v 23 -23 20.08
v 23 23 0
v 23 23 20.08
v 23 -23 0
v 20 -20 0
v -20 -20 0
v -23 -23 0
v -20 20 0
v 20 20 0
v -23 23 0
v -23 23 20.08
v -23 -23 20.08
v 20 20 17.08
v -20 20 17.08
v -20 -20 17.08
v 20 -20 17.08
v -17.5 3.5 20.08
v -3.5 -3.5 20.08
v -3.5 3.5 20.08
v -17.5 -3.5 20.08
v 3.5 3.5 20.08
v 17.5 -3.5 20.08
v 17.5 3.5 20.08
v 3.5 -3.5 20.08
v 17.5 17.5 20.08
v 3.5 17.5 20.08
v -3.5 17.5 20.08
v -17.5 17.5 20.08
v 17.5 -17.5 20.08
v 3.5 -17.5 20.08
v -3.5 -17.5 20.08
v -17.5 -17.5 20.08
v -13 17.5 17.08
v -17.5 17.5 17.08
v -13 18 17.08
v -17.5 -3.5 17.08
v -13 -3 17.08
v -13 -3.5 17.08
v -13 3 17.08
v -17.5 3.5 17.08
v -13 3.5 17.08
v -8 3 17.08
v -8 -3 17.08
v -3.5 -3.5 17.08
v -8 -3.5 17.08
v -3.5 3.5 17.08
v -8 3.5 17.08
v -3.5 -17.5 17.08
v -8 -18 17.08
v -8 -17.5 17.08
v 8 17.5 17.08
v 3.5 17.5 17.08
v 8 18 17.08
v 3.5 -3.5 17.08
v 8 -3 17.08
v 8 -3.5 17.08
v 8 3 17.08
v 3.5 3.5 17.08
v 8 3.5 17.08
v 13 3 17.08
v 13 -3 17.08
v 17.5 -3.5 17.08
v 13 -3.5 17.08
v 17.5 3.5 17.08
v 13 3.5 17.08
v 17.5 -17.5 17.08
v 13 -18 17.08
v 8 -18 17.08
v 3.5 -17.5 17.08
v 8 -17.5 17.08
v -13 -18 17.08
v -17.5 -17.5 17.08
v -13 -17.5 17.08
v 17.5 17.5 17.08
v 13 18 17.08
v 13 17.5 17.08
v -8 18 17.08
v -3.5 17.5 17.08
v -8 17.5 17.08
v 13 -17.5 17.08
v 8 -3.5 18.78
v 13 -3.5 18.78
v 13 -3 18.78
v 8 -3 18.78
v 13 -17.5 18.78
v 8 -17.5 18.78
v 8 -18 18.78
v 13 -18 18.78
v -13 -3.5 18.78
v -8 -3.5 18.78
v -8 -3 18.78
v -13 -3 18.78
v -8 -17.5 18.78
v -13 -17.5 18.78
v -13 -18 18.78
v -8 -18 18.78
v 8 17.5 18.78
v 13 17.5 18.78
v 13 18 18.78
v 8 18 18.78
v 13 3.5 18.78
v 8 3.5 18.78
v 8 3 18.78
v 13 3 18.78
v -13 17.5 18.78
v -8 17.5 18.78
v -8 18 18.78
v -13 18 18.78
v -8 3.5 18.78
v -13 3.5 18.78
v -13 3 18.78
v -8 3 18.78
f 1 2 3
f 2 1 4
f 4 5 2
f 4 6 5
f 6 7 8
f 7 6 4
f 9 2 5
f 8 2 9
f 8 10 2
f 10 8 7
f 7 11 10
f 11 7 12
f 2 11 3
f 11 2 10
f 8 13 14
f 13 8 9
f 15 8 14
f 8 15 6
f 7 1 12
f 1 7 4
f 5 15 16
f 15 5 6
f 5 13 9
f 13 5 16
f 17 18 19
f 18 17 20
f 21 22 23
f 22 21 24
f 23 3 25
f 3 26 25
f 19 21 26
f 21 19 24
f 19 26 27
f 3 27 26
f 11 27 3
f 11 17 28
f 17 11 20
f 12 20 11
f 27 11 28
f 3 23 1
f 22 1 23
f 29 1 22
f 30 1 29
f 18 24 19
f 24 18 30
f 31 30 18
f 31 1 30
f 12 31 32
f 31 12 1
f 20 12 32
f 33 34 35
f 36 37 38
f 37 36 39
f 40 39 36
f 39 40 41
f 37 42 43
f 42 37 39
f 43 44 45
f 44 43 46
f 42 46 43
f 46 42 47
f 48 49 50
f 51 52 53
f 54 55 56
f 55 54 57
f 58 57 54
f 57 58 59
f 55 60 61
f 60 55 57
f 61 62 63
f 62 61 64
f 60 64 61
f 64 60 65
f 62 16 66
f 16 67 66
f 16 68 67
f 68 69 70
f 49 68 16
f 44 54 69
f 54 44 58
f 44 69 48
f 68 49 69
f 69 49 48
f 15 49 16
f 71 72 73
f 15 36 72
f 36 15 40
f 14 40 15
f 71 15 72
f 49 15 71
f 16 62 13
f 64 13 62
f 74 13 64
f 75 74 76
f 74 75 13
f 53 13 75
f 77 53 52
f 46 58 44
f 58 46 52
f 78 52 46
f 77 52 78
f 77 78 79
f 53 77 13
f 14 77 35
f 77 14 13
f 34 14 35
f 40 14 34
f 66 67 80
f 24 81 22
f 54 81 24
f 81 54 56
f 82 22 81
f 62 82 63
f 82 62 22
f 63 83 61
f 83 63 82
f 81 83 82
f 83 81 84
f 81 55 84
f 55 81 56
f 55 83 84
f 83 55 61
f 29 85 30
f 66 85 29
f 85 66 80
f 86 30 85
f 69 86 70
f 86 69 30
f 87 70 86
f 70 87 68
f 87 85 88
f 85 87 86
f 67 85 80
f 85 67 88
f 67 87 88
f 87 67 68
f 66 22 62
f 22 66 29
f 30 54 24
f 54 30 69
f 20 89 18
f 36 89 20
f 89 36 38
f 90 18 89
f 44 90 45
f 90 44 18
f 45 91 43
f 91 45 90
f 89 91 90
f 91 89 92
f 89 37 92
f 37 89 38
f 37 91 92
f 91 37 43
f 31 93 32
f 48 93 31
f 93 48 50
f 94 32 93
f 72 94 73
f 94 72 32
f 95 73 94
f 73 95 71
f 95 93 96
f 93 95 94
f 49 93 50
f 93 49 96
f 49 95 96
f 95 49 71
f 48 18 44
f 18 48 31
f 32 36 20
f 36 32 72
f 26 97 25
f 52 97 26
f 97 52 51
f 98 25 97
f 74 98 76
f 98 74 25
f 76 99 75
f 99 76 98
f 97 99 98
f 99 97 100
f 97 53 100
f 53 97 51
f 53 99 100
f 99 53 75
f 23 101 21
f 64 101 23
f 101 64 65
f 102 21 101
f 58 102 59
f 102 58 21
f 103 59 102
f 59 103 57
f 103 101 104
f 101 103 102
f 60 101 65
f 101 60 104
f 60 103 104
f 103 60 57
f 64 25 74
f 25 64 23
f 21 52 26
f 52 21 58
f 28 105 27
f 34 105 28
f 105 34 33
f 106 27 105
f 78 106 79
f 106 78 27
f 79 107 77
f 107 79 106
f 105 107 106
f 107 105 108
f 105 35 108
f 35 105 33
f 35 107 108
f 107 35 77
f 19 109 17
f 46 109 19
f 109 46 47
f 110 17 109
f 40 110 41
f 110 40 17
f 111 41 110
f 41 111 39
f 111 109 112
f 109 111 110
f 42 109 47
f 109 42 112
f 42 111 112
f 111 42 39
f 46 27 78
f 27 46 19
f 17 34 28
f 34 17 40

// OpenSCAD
// Generated by SolidPython 1.0.4 on 2020-12-13 17:09:58


union() {
	translate(v = [0, 0, 10.0400000000]) {
		union() {
			translate(v = [0, 21.5000000000, 0]) {
				cube(center = true, size = [46.0000000000, 3, 20.0800000000]);
			}
			translate(v = [-21.5000000000, 0, 0]) {
				cube(center = true, size = [3, 46.0000000000, 20.0800000000]);
			}
			rotate(a = 180) {
				translate(v = [0, 21.5000000000, 0]) {
					cube(center = true, size = [46.0000000000, 3, 20.0800000000]);
				}
			}
			rotate(a = 180) {
				translate(v = [-21.5000000000, 0, 0]) {
					cube(center = true, size = [3, 46.0000000000, 20.0800000000]);
				}
			}
		}
	}
	translate(v = [0, 0, 17.0800000000]) {
		translate(v = [10.5000000000, 0, 0]) {
			translate(v = [0, -10.5000000000, 0]) {
				translate(v = [-0.0000000000, 0, 0]) {
					translate(v = [0, 0.0000000000, 0]) {
						union() {
							translate(v = [0, 7.7500000000, 0]) {
								translate(v = [0, 0, 1.5000000000]) {
									difference() {
										cube(center = true, size = [17.0000000000, 1.5000000000, 3]);
										translate(v = [0, 0, -1.3000000000]) {
											translate(v = [0, -0.7500000000, 0]) {
												cube(center = true, size = [5, 1.0000000000, 3]);
											}
										}
									}
								}
							}
							translate(v = [-7.7500000000, 0, 0]) {
								translate(v = [0, 0, 1.5000000000]) {
									cube(center = true, size = [1.5000000000, 17.0000000000, 3]);
								}
							}
							mirror(v = [0, 1, 0]) {
								mirror(v = [1, 0, 0]) {
									union() {
										translate(v = [0, 7.7500000000, 0]) {
											translate(v = [0, 0, 1.5000000000]) {
												difference() {
													cube(center = true, size = [17.0000000000, 1.5000000000, 3]);
													translate(v = [0, 0, -1.3000000000]) {
														translate(v = [0, -0.7500000000, 0]) {
															cube(center = true, size = [5, 1.0000000000, 3]);
														}
													}
												}
											}
										}
										translate(v = [-7.7500000000, 0, 0]) {
											translate(v = [0, 0, 1.5000000000]) {
												cube(center = true, size = [1.5000000000, 17.0000000000, 3]);
											}
										}
									}
								}
							}
							translate(v = [0, 0, 1.5000000000]) {
								translate(v = [0, 10.5000000000, 0]) {
									cube(center = true, size = [25.0000000000, 4, 3]);
								}
							}
							rotate(a = 90) {
								translate(v = [0, 0, 1.5000000000]) {
									translate(v = [0, 10.5000000000, 0]) {
										cube(center = true, size = [25.0000000000, 4, 3]);
									}
								}
							}
							rotate(a = 180) {
								translate(v = [0, 0, 1.5000000000]) {
									translate(v = [0, 10.5000000000, 0]) {
										cube(center = true, size = [25.0000000000, 4, 3]);
									}
								}
							}
							rotate(a = 270) {
								translate(v = [0, 0, 1.5000000000]) {
									translate(v = [0, 10.5000000000, 0]) {
										cube(center = true, size = [25.0000000000, 4, 3]);
									}
								}
							}
						}
					}
				}
				translate(v = [-21.0000000000, 0, 0]) {
					translate(v = [0, 0.0000000000, 0]) {
						union() {
							translate(v = [0, 7.7500000000, 0]) {
								translate(v = [0, 0, 1.5000000000]) {
									difference() {
										cube(center = true, size = [17.0000000000, 1.5000000000, 3]);
										translate(v = [0, 0, -1.3000000000]) {
											translate(v = [0, -0.7500000000, 0]) {
												cube(center = true, size = [5, 1.0000000000, 3]);
											}
										}
									}
								}
							}
							translate(v = [-7.7500000000, 0, 0]) {
								translate(v = [0, 0, 1.5000000000]) {
									cube(center = true, size = [1.5000000000, 17.0000000000, 3]);
								}
							}
							mirror(v = [0, 1, 0]) {
								mirror(v = [1, 0, 0]) {
									union() {
										translate(v = [0, 7.7500000000, 0]) {
											translate(v = [0, 0, 1.5000000000]) {
												difference() {
													cube(center = true, size = [17.0000000000, 1.5000000000, 3]);
													translate(v = [0, 0, -1.3000000000]) {
														translate(v = [0, -0.7500000000, 0]) {
															cube(center = true, size = [5, 1.0000000000, 3]);
														}
													}
												}
											}
										}
										translate(v = [-7.7500000000, 0, 0]) {
											translate(v = [0, 0, 1.5000000000]) {
												cube(center = true, size = [1.5000000000, 17.0000000000, 3]);
											}
										}
									}
								}
							}
							translate(v = [0, 0, 1.5000000000]) {
								translate(v = [0, 10.5000000000, 0]) {
									cube(center = true, size = [25.0000000000, 4, 3]);
								}
							}
							rotate(a = 90) {
								translate(v = [0, 0, 1.5000000000]) {
									translate(v = [0, 10.5000000000, 0]) {
										cube(center = true, size = [25.0000000000, 4, 3]);
									}
								}
							}
							rotate(a = 180) {
								translate(v = [0, 0, 1.5000000000]) {
									translate(v = [0, 10.5000000000, 0]) {
										cube(center = true, size = [25.0000000000, 4, 3]);
									}
								}
							}
							rotate(a = 270) {
								translate(v = [0, 0, 1.5000000000]) {
									translate(v = [0, 10.5000000000, 0]) {
										cube(center = true, size = [25.0000000000, 4, 3]);
									}
								}
							}
						}
					}
				}
				translate(v = [-0.0000000000, 0, 0]) {
					translate(v = [0, 21.0000000000, 0]) {
						union() {
							translate(v = [0, 7.7500000000, 0]) {
								translate(v = [0, 0, 1.5000000000]) {
									difference() {
										cube(center = true, size = [17.0000000000, 1.5000000000, 3]);
										translate(v = [0, 0, -1.3000000000]) {
											translate(v = [0, -0.7500000000, 0]) {
												cube(center = true, size = [5, 1.0000000000, 3]);
											}
										}
									}
								}
							}
							translate(v = [-7.7500000000, 0, 0]) {
								translate(v = [0, 0, 1.5000000000]) {
									cube(center = true, size = [1.5000000000, 17.0000000000, 3]);
								}
							}
							mirror(v = [0, 1, 0]) {
								mirror(v = [1, 0, 0]) {
									union() {
										translate(v = [0, 7.7500000000, 0]) {
											translate(v = [0, 0, 1.5000000000]) {
												difference() {
													cube(center = true, size = [17.0000000000, 1.5000000000, 3]);
													translate(v = [0, 0, -1.3000000000]) {
														translate(v = [0, -0.7500000000, 0]) {
															cube(center = true, size = [5, 1.0000000000, 3]);
														}
													}
												}
											}
										}
										translate(v = [-7.7500000000, 0, 0]) {
											translate(v = [0, 0, 1.5000000000]) {
												cube(center = true, size = [1.5000000000, 17.0000000000, 3]);
											}
										}
									}
								}
							}
							translate(v = [0, 0, 1.5000000000]) {
								translate(v = [0, 10.5000000000, 0]) {
									cube(center = true, size = [25.0000000000, 4, 3]);
								}
							}
							rotate(a = 90) {
								translate(v = [0, 0, 1.5000000000]) {
									translate(v = [0, 10.5000000000, 0]) {
										cube(center = true, size = [25.0000000000, 4, 3]);
									}
								}
							}
							rotate(a = 180) {
								translate(v = [0, 0, 1.5000000000]) {
									translate(v = [0, 10.5000000000, 0]) {
										cube(center = true, size = [25.0000000000, 4, 3]);
									}
								}
							}
							rotate(a = 270) {
								translate(v = [0, 0, 1.5000000000]) {
									translate(v = [0, 10.5000000000, 0]) {
										cube(center = true, size = [25.0000000000, 4, 3]);
									}
								}
							}
						}
					}
				}
				translate(v = [-21.0000000000, 0, 0]) {
					translate(v = [0, 21.0000000000, 0]) {
						union() {
							translate(v = [0, 7.7500000000, 0]) {
								translate(v = [0, 0, 1.5000000000]) {
									difference() {
										cube(center = true, size = [17.0000000000, 1.5000000000, 3]);
										translate(v = [0, 0, -1.3000000000]) {
											translate(v = [0, -0.7500000000, 0]) {
												cube(center = true, size = [5, 1.0000000000, 3]);
											}
										}
									}
								}
							}
							translate(v = [-7.7500000000, 0, 0]) {
								translate(v = [0, 0, 1.5000000000]) {
									cube(center = true, size = [1.5000000000, 17.0000000000, 3]);
								}
							}
							mirror(v = [0, 1, 0]) {
								mirror(v = [1, 0, 0]) {
									union() {
										translate(v = [0, 7.7500000000, 0]) {
											translate(v = [0, 0, 1.5000000000]) {
												difference() {
													cube(center = true, size = [17.0000000000, 1.5000000000, 3]);
													translate(v = [0, 0, -1.3000000000]) {
														translate(v = [0, -0.7500000000, 0]) {
															cube(center = true, size = [5, 1.0000000000, 3]);
														}
													}
												}
											}
										}
										translate(v = [-7.7500000000, 0, 0]) {
											translate(v = [0, 0, 1.5000000000]) {
												cube(center = true, size = [1.5000000000, 17.0000000000, 3]);
											}
										}
									}
								}
							}
							translate(v = [0, 0, 1.5000000000]) {
								translate(v = [0, 10.5000000000, 0]) {
									cube(center = true, size = [25.0000000000, 4, 3]);
								}
							}
							rotate(a = 90) {
								translate(v = [0, 0, 1.5000000000]) {
									translate(v = [0, 10.5000000000, 0]) {
										cube(center = true, size = [25.0000000000, 4, 3]);
									}
								}
							}
							rotate(a = 180) {
								translate(v = [0, 0, 1.5000000000]) {
									translate(v = [0, 10.5000000000, 0]) {
										cube(center = true, size = [25.0000000000, 4, 3]);
									}
								}
							}
							rotate(a = 270) {
								translate(v = [0, 0, 1.5000000000]) {
									translate(v = [0, 10.5000000000, 0]) {
										cube(center = true, size = [25.0000000000, 4, 3]);
									}
								}
							}
						}
					}
				}
			}
		}
	}
}
/***********************************************
*********      SolidPython code:      **********
************************************************
 
#!/usr/bin/env python
import argparse
from os.path import abspath, dirname, join

from solid import *

from key_grid_tester import key_grid_tester


if __name__ == "__main__":
    parser = argparse.ArgumentParser(description="Process some integers.")
    parser.add_argument(
        "length",
        metavar="LENGTH",
        type=int,
        help="the length of the tester, in number of keys",
    )
    parser.add_argument(
        "width",
        metavar="WIDTH",
        type=int,
        help="the width of the tester, in number of keys",
    )
    parser.add_argument(
        "-o",
        "--output",
        metavar="FILE",
        type=str,
        default=None,
        help="the name of the file to write to",
    )

    args = parser.parse_args()

    filepath=join(
        dirname(dirname(abspath(__file__))),
        'files',
        args.output or f"key_grid_tester_{args.length}x{args.width}.scad"
    )

    print(filepath)

    scad_render_to_file(
        key_grid_tester(args.length, args.width),
        filepath=filepath,
        include_orig_code=True
    )
 
 
************************************************/
